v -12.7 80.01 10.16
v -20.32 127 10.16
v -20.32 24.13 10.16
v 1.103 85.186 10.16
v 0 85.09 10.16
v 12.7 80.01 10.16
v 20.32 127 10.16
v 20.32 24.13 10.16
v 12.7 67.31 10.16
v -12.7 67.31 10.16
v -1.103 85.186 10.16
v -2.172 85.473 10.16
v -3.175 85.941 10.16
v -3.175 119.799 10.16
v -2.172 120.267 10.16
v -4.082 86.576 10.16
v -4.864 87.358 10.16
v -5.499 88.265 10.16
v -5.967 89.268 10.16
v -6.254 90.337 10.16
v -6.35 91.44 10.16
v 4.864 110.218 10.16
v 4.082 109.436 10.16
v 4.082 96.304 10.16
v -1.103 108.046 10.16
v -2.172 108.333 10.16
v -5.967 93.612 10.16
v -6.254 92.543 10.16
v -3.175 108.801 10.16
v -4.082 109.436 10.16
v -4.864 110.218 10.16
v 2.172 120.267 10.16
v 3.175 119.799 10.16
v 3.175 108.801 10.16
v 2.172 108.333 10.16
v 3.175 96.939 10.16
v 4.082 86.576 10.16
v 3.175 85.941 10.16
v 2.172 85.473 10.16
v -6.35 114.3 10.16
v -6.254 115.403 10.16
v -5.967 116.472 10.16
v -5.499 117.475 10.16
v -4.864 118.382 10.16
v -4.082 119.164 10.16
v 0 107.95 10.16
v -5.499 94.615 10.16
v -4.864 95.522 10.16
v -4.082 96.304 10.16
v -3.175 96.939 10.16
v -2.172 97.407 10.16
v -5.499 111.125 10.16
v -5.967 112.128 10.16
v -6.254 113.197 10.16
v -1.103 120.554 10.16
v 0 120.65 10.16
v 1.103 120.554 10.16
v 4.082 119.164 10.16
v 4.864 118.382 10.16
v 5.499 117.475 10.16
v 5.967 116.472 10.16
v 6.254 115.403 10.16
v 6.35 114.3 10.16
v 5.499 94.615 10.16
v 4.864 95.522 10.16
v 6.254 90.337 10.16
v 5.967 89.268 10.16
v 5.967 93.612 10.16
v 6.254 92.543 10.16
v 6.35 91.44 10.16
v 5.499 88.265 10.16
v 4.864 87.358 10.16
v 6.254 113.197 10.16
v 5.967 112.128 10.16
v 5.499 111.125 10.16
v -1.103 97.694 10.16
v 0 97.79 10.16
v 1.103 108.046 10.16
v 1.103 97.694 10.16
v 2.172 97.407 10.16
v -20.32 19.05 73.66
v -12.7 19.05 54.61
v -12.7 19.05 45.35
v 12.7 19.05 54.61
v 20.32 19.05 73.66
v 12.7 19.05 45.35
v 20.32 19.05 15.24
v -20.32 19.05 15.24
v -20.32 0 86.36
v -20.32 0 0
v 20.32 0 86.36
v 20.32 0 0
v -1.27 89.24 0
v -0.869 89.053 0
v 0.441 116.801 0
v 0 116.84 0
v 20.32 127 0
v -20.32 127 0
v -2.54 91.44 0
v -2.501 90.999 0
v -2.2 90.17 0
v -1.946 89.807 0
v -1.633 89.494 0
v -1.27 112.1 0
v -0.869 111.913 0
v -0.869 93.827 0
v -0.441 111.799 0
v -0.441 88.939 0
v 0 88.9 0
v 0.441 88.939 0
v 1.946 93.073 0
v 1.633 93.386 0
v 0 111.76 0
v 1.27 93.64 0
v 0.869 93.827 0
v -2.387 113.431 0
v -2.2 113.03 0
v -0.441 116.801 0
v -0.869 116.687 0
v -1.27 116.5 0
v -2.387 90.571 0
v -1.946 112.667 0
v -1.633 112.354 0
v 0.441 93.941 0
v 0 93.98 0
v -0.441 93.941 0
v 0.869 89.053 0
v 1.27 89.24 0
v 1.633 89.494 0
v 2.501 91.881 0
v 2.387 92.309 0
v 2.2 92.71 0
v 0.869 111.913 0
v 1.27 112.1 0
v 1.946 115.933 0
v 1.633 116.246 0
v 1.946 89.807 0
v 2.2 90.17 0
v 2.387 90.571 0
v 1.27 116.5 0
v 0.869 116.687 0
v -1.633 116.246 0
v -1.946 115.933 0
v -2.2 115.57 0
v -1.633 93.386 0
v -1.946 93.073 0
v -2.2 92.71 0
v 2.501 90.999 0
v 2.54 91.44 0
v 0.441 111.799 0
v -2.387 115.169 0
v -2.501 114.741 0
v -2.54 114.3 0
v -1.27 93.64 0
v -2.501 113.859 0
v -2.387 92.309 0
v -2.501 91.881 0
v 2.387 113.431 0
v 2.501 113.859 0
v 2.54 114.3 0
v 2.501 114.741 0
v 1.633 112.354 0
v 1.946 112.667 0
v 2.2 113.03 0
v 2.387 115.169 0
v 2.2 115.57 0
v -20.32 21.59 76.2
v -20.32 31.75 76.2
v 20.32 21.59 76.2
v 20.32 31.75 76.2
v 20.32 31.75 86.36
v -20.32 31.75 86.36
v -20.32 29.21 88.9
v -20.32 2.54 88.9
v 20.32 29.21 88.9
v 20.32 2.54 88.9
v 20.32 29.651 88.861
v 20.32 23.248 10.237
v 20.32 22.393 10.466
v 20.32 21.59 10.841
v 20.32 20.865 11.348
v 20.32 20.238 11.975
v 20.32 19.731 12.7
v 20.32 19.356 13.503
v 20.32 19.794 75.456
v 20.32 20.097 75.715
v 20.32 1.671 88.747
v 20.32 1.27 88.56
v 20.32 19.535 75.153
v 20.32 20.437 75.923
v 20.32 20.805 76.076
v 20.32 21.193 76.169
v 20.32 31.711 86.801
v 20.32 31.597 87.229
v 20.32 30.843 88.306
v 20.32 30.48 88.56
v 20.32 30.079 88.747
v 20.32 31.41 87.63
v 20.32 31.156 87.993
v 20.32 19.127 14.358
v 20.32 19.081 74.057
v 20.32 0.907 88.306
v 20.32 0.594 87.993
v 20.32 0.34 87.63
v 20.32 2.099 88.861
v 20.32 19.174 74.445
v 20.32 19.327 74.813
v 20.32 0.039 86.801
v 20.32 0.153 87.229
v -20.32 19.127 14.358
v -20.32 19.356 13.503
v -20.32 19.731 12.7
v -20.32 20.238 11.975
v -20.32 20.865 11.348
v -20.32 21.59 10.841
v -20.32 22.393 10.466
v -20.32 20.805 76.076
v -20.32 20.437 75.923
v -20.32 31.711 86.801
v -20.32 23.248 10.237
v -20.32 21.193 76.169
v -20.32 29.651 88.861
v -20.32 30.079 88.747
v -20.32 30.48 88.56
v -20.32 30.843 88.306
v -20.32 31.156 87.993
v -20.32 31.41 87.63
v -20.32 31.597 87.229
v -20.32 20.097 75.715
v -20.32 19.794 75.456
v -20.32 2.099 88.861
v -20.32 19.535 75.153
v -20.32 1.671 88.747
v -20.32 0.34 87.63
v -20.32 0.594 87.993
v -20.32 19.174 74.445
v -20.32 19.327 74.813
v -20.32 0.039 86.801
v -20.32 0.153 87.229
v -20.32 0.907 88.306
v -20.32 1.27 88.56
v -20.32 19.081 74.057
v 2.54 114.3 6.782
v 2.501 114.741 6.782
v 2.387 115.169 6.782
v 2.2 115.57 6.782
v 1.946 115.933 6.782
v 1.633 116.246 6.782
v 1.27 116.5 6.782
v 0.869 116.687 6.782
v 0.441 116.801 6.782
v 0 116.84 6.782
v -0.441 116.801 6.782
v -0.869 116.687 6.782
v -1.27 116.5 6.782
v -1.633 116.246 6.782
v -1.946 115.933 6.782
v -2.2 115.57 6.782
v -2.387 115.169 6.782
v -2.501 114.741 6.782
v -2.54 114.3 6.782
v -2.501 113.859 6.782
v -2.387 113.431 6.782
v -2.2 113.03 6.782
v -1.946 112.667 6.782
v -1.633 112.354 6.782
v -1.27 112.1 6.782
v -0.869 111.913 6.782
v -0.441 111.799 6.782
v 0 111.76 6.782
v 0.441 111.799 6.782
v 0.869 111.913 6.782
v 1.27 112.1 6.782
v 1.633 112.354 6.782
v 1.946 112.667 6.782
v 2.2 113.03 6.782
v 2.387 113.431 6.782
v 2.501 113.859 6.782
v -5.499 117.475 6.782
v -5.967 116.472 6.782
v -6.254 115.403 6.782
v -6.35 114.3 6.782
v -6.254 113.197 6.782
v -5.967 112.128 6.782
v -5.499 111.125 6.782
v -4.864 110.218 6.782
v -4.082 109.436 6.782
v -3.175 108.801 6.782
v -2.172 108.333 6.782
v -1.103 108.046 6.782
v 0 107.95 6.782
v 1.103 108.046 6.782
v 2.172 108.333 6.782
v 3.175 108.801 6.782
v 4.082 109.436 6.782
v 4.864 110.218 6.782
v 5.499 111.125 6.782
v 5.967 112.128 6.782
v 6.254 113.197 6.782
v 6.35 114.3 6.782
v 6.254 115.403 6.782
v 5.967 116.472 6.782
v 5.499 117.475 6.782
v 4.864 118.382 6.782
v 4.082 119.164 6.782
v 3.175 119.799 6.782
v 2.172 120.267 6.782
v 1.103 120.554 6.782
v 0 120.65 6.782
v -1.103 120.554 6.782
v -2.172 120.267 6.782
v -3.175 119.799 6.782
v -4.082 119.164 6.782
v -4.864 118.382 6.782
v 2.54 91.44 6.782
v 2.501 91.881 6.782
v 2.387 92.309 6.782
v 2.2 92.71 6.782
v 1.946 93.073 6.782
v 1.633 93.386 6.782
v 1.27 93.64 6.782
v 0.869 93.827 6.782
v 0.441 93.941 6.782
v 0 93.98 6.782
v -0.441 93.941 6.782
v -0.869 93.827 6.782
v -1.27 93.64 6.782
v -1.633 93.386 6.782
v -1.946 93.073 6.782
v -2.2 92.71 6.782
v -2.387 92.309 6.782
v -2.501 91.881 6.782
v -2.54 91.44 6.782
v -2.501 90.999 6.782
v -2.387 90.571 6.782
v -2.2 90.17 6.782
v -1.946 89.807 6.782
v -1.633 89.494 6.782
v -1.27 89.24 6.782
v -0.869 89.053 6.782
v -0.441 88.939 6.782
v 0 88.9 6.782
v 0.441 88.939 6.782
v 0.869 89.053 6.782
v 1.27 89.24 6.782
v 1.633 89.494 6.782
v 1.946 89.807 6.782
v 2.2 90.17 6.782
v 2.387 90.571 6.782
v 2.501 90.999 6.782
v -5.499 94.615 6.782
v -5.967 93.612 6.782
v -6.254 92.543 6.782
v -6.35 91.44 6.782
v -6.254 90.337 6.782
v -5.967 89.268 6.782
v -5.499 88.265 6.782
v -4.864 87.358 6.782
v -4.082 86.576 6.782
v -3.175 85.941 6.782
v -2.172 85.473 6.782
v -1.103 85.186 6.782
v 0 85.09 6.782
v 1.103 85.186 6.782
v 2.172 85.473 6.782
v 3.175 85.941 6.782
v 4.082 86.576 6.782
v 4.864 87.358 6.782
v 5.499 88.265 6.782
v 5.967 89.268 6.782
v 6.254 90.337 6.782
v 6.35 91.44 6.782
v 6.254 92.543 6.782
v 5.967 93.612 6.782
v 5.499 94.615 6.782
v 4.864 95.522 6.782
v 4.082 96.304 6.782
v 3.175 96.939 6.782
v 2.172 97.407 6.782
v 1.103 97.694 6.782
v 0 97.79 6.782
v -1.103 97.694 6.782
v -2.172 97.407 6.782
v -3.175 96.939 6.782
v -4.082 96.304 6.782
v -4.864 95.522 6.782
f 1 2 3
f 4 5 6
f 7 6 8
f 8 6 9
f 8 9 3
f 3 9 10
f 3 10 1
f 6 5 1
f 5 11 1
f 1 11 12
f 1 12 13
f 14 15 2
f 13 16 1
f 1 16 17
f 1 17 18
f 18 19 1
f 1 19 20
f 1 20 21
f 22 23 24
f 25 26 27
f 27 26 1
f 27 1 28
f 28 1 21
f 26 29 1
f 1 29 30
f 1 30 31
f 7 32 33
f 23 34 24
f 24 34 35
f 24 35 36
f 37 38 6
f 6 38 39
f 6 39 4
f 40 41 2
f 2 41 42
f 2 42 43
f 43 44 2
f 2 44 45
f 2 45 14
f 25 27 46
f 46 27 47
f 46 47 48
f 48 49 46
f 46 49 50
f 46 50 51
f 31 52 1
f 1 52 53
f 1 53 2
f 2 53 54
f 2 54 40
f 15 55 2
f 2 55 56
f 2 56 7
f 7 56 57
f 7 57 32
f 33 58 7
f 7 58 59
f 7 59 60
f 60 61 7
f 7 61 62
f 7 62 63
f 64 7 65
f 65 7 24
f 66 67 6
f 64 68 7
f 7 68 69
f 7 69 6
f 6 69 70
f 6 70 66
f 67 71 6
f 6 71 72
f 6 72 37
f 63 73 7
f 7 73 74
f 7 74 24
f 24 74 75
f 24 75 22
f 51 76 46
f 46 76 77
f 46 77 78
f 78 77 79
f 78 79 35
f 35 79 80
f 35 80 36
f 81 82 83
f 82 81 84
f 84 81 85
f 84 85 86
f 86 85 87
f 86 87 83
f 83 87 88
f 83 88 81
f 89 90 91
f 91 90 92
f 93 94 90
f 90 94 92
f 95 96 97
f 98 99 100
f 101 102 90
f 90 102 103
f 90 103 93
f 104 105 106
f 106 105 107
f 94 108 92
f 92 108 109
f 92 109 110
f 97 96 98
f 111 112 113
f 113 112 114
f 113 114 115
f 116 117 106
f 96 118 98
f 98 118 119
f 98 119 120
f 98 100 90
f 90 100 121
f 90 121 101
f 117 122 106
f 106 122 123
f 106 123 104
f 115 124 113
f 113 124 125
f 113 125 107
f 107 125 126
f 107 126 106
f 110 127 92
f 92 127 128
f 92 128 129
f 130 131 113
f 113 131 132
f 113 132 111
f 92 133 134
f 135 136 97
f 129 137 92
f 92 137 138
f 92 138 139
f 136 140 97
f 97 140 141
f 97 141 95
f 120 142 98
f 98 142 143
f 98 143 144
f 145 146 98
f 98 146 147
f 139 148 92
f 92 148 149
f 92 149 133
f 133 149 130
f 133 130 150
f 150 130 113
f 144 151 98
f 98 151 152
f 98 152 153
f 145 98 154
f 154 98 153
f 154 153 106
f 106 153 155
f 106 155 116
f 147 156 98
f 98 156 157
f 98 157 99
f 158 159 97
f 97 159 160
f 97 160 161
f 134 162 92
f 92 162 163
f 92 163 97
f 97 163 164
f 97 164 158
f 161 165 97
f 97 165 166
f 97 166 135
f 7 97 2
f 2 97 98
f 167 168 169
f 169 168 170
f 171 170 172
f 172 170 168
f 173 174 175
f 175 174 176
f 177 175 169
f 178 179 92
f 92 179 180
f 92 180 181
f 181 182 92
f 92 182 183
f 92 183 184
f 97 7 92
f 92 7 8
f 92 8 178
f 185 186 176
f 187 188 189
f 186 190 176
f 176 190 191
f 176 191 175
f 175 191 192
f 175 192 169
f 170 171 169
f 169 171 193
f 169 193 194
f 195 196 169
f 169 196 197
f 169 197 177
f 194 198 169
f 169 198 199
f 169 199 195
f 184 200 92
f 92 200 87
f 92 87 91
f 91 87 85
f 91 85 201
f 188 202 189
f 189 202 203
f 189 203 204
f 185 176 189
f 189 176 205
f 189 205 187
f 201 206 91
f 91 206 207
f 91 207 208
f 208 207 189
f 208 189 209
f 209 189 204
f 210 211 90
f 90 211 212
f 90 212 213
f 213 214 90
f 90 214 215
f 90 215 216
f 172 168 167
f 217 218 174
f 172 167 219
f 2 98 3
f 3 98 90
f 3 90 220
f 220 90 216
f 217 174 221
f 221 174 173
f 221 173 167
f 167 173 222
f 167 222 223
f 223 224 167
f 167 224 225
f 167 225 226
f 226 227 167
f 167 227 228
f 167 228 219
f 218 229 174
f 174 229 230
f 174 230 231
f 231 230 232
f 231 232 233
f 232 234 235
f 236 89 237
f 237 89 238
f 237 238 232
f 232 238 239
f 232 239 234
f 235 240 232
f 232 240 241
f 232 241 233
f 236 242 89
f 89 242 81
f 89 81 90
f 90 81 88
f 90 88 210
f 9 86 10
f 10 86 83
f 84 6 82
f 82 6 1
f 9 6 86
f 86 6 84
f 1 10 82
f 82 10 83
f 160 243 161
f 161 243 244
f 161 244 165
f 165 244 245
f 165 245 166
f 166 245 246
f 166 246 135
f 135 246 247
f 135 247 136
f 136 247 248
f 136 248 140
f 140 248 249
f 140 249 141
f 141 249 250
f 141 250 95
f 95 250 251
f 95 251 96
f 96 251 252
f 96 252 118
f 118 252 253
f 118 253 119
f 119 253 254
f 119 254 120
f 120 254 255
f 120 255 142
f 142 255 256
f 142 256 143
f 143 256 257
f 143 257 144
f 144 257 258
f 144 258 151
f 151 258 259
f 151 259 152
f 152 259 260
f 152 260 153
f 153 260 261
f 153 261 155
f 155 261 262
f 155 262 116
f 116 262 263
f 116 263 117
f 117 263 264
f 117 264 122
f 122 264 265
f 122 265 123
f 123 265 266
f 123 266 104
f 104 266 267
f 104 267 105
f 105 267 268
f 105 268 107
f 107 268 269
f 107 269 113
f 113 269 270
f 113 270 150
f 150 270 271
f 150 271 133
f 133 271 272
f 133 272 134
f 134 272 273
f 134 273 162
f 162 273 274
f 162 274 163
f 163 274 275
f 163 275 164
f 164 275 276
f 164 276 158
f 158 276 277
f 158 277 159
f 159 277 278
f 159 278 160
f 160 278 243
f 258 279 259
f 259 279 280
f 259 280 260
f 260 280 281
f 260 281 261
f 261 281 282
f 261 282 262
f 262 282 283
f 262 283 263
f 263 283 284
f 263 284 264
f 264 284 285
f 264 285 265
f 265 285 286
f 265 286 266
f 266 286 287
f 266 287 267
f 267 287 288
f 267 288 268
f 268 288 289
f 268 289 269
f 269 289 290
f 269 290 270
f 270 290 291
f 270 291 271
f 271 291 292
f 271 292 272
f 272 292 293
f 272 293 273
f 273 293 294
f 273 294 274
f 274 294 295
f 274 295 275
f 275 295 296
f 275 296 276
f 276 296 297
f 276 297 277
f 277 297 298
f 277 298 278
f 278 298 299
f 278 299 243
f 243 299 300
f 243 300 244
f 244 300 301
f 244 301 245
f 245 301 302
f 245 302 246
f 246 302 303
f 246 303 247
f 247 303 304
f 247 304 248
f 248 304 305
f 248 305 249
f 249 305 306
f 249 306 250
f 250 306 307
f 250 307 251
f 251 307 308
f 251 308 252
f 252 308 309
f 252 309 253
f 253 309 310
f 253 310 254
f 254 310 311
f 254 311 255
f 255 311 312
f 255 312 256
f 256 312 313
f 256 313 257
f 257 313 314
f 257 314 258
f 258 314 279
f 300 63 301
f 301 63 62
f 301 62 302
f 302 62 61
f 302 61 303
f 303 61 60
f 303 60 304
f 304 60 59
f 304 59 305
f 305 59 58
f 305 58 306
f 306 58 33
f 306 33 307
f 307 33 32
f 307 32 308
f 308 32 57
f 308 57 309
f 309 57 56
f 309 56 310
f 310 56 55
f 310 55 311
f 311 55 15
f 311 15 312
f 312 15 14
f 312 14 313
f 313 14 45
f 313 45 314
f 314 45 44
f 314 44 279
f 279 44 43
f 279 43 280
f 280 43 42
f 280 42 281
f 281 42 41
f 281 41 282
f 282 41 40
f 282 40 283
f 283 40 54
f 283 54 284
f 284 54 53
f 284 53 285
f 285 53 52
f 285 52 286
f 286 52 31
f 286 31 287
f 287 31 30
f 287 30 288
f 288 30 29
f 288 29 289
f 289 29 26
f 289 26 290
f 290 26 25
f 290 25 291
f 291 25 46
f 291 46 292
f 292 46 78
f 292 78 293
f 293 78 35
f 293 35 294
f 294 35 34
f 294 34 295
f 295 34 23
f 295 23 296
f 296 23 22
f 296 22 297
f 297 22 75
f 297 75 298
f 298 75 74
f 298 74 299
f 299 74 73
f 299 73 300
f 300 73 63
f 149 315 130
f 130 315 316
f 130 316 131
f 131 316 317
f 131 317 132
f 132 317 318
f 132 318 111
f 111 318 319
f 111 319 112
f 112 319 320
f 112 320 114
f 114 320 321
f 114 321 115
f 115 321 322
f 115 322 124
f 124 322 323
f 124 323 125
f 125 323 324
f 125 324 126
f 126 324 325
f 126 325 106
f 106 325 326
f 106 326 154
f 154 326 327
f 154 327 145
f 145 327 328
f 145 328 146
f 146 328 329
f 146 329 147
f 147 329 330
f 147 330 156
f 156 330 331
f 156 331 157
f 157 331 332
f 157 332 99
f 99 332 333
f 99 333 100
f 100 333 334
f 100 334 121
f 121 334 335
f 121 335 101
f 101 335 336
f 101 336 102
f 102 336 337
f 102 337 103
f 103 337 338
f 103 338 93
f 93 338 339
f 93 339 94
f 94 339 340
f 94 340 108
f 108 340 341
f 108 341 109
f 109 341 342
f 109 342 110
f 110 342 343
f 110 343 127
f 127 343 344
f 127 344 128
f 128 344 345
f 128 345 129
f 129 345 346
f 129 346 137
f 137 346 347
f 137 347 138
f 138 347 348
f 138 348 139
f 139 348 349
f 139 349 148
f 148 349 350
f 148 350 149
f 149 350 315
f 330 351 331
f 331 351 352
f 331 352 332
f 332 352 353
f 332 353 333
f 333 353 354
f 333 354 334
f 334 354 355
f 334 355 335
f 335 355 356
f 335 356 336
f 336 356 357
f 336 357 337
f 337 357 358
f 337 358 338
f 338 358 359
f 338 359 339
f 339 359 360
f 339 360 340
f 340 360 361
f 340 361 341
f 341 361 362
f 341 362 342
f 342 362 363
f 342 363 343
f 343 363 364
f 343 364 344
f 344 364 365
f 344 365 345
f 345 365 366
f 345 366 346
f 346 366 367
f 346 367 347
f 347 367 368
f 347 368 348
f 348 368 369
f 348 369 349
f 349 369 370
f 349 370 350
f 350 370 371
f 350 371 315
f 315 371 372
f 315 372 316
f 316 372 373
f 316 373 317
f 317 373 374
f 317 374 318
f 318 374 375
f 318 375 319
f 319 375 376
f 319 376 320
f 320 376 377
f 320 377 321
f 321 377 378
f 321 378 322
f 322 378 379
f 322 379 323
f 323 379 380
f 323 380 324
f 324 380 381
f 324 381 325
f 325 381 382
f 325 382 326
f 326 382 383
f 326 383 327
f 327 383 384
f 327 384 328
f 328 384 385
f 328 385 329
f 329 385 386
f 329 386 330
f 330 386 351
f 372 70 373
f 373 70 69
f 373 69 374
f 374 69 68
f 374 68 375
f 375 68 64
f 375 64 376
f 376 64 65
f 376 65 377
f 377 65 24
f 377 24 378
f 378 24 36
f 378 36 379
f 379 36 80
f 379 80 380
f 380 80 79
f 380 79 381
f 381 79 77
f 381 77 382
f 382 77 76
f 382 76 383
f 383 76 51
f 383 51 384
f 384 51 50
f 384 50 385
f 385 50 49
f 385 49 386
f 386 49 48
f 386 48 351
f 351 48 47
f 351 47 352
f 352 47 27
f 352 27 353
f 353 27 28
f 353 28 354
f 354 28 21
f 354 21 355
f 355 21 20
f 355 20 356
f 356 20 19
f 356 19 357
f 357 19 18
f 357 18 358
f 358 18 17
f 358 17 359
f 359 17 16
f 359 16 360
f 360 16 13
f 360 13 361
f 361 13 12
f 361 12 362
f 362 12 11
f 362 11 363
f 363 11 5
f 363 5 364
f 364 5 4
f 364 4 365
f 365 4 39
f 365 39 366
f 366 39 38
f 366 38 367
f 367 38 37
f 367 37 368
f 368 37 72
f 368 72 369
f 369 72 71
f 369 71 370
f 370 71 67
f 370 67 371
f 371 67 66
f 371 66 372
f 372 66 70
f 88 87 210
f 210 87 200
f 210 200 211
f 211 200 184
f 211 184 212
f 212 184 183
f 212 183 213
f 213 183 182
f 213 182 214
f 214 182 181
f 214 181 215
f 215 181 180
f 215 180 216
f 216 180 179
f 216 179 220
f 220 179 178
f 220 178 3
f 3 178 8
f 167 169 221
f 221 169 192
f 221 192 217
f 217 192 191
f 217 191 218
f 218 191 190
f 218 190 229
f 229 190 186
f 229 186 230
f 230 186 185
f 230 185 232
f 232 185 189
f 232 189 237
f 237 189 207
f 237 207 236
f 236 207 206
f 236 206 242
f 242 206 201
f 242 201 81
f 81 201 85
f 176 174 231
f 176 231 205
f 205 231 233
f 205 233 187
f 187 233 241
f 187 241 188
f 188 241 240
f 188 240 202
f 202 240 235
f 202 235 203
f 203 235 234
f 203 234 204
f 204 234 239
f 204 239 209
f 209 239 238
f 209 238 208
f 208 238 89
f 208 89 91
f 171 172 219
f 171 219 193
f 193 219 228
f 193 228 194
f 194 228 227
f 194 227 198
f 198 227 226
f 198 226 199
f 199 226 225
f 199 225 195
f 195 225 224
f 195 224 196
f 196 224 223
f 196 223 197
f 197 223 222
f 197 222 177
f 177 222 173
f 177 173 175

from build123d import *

# Parameters (mm, degrees)
BOSS_EXTRUDE1_DEPTH                              = 20.32
BOSS_EXTRUDE2_DEPTH                              = 12.7
CBORE_FOR_10_PAN_HEAD_MACHINE_SCREW1_D           = 5.08
CBORE_FOR_10_PAN_HEAD_MACHINE_SCREW1_CBORE_D     = 12.7
CBORE_FOR_10_PAN_HEAD_MACHINE_SCREW1_CBORE_DEPTH = 3.3782
FILLET1_R                                        = 5.08
FILLET2_R                                        = 2.54
FILLET3_R                                        = 2.54
FILLET4_R                                        = 2.54


with BuildPart() as part:
    # Sketch1 → Boss-Extrude1 (new, symmetric)
    with BuildSketch(Plane(origin=(0, 0, 0), x_dir=(0, 0, -1), z_dir=(1, 0, 0))):
        Polygon((0, 0), (0, 127), (-10.16, 127), (-10.16, 19.05), (-76.2, 19.05), (-76.2, 31.75), (-88.9, 31.75), (-88.9, 0), align=None)
    extrude(amount=BOSS_EXTRUDE1_DEPTH, both=True)

    # Sketch1<9> → Boss-Extrude2 (add, symmetric)
    with BuildSketch(Plane(origin=(0, 0, 0), x_dir=(0, 0, -1), z_dir=(1, 0, 0))):
        Polygon((-54.61, 19.05), (-10.16, 80.01), (-10.16, 67.31), (-45.349583333, 19.05), align=None)
    extrude(amount=BOSS_EXTRUDE2_DEPTH, both=True)

    # CBORE for #10 Pan Head Machine Screw1 (through all)
    with Locations(Plane.XY.offset(10.16)):
        with Locations((0, 91.44), (0, 114.3)):
            CounterBoreHole(CBORE_FOR_10_PAN_HEAD_MACHINE_SCREW1_D / 2, CBORE_FOR_10_PAN_HEAD_MACHINE_SCREW1_CBORE_D / 2, CBORE_FOR_10_PAN_HEAD_MACHINE_SCREW1_CBORE_DEPTH)

    # Fillet1
    fillet1_edges = [part.edges().sort_by_distance(p)[0] for p in [
        (0, 19.05, 10.16),
    ]]
    fillet(fillet1_edges, radius=FILLET1_R)

    # Fillet2
    fillet2_edges = [part.edges().sort_by_distance(p)[0] for p in [
        (0, 19.05, 76.2),
    ]]
    fillet(fillet2_edges, radius=FILLET2_R)

    # Fillet3
    fillet3_edges = [part.edges().sort_by_distance(p)[0] for p in [
        (0, 0, 88.9),
    ]]
    fillet(fillet3_edges, radius=FILLET3_R)

    # Fillet4
    fillet4_edges = [part.edges().sort_by_distance(p)[0] for p in [
        (0, 31.75, 88.9),
    ]]
    fillet(fillet4_edges, radius=FILLET4_R)


solid = part.part
